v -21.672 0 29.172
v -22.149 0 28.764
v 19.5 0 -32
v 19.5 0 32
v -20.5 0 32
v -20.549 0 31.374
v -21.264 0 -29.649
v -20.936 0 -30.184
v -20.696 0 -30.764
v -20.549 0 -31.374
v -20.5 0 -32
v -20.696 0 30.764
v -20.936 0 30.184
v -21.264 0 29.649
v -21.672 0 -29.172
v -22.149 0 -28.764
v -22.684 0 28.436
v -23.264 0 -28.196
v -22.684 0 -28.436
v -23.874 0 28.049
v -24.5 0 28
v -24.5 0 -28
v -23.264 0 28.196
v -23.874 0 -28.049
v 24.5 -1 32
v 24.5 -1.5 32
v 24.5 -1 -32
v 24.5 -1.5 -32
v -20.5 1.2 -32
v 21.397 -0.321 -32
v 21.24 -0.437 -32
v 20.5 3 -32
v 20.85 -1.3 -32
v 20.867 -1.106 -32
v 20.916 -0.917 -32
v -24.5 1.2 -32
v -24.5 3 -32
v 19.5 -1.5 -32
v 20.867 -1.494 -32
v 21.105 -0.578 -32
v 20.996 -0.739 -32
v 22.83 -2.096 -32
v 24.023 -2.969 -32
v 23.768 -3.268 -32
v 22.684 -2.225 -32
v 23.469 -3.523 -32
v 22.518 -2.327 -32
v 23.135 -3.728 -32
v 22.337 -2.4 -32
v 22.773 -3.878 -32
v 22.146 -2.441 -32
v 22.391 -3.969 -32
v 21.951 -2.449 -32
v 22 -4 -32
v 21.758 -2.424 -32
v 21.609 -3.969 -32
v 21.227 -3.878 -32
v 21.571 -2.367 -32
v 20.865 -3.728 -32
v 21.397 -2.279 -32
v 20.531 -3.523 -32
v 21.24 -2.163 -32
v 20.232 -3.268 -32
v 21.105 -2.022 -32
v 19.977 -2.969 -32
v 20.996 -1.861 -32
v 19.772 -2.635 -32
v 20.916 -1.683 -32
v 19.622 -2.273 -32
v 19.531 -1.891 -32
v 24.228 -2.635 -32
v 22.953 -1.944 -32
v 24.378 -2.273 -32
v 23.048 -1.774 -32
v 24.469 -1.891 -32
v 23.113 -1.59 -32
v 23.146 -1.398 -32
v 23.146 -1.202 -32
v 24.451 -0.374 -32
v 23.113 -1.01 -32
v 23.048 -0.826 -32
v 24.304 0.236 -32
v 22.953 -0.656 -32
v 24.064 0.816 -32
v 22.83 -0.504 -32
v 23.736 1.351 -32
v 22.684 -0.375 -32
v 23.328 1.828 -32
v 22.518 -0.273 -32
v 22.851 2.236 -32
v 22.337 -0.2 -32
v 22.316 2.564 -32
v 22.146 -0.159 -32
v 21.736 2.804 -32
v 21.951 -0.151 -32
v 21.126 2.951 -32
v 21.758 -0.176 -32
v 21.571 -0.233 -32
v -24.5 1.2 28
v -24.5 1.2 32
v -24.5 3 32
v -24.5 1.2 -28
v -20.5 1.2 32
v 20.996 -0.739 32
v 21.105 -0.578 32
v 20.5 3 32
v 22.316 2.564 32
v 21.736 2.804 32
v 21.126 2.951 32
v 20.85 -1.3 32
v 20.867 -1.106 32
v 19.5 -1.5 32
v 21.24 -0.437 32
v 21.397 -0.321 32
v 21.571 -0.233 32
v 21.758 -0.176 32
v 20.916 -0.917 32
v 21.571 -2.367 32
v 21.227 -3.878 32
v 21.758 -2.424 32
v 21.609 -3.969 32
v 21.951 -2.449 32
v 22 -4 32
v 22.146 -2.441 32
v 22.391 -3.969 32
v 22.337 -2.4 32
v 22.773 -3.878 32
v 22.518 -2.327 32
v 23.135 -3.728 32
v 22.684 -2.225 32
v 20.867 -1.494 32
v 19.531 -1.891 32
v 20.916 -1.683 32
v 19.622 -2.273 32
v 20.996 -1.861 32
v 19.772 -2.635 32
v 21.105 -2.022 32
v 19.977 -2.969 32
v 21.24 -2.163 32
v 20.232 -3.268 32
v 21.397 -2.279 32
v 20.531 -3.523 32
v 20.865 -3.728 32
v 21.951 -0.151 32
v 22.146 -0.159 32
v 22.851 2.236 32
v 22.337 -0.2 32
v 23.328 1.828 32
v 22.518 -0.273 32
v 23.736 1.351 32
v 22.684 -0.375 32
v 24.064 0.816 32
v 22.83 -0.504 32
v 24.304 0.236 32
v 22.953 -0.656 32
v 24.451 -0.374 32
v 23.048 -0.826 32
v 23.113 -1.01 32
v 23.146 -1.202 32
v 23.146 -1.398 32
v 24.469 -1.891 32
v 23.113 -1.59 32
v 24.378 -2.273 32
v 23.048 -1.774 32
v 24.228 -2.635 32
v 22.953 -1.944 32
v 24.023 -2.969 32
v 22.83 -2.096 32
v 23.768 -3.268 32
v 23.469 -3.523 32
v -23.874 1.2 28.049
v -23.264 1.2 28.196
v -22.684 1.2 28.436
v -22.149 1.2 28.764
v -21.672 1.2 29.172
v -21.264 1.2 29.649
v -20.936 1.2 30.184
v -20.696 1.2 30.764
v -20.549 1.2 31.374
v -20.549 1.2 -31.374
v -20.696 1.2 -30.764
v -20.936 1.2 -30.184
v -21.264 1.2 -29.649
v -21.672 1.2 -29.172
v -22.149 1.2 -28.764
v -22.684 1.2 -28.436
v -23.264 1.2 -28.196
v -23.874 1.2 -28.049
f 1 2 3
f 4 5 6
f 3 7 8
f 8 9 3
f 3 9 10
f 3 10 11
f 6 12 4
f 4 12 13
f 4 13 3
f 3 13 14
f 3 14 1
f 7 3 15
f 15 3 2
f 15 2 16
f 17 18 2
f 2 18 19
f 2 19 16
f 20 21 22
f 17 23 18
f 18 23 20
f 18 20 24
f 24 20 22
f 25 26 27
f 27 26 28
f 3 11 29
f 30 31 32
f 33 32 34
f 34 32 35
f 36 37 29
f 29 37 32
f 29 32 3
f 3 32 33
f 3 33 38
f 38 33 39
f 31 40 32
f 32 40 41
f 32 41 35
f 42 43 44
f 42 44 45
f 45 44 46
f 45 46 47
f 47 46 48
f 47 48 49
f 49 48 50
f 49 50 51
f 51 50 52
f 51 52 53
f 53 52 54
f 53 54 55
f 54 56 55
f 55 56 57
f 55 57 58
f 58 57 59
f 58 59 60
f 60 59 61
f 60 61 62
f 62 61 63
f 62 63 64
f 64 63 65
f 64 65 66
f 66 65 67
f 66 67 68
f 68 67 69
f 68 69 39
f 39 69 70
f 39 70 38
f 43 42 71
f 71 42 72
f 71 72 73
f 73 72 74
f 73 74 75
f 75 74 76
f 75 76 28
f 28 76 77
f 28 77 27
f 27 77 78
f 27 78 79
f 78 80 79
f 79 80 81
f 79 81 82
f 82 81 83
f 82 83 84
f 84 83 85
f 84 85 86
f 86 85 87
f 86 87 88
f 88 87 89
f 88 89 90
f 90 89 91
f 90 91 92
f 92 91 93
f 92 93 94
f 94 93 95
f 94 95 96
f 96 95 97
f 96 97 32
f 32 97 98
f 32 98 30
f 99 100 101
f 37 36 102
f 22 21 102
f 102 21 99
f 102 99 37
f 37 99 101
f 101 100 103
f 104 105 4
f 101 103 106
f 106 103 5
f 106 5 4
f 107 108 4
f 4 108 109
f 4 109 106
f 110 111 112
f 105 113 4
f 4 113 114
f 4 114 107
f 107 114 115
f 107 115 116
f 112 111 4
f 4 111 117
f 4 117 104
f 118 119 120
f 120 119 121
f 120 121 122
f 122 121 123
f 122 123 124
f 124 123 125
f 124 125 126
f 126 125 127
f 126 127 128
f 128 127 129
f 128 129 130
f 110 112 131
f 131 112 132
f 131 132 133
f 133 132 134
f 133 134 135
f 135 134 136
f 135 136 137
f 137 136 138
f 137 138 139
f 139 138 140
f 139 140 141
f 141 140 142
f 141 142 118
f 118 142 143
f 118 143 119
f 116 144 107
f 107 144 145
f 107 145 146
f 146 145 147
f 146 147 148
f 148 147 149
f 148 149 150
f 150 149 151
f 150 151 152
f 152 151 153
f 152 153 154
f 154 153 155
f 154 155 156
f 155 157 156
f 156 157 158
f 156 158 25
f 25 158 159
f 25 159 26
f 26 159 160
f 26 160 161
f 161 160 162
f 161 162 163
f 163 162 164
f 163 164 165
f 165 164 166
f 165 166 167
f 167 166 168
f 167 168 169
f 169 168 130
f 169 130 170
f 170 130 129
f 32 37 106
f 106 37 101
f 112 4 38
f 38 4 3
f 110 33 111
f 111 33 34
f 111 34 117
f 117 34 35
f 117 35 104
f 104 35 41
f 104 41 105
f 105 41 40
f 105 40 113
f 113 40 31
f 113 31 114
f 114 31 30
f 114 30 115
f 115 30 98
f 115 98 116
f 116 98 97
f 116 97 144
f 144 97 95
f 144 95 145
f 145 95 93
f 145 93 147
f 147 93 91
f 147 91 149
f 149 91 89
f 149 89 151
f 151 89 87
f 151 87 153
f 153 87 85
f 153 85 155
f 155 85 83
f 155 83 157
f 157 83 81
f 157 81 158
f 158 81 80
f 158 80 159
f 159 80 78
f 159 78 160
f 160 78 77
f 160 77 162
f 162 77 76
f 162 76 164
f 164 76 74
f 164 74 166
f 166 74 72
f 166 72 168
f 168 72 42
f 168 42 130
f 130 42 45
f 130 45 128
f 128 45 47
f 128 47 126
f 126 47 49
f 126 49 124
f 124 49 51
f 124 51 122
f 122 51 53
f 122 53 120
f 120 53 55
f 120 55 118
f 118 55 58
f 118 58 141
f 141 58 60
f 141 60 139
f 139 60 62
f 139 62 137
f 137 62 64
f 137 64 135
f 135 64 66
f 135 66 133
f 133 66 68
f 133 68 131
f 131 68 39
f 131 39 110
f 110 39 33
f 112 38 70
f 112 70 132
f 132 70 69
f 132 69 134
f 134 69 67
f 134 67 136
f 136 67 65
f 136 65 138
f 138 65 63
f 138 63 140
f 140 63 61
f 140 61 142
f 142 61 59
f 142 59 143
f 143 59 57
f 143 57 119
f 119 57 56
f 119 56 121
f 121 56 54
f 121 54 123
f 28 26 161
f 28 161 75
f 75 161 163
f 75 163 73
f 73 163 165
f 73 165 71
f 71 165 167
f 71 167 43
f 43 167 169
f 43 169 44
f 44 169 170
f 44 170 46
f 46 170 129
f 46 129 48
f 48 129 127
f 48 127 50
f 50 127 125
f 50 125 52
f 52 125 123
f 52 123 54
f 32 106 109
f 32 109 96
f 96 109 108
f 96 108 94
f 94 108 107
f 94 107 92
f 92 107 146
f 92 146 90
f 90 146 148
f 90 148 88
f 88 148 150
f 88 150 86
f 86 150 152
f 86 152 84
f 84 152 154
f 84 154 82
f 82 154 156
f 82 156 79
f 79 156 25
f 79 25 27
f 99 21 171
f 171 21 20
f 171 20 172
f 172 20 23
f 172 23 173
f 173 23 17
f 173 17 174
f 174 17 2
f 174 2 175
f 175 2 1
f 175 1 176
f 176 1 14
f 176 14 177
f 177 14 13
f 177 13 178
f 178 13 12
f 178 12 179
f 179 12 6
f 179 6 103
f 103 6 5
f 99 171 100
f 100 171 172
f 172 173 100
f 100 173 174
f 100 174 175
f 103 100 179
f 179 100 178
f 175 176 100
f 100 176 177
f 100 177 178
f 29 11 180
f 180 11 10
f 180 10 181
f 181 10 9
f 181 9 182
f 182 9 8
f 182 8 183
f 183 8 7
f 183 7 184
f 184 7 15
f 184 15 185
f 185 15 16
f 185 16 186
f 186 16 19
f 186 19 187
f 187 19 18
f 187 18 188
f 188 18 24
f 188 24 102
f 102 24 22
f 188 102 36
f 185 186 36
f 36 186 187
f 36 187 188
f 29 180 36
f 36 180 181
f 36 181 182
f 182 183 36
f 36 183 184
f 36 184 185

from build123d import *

# Parameters (mm, degrees)
SKETCH_1_W          = 49
SKETCH_1_H          = 64
EXTRUDE_1_DEPTH     = 3
SKETCH_2_W          = 5
SKETCH_2_H          = 64
EXTRUDE_2_DEPTH     = 4
SKETCH_3_R          = 1.15
CUT_EXTRUDE_2_DEPTH = 69.645830172
FILLET_1_R          = 2.5
FILLET_2_R          = 4
CUT_EXTRUDE_3_DEPTH = 1.2


with BuildPart() as part:
    # 草图1 → 凸台-拉伸1 (new body)
    with BuildSketch(Plane(origin=(0, 0, 0), x_dir=(1, 0, 0), z_dir=(0, 1, 0))):
        Rectangle(SKETCH_1_W, SKETCH_1_H)
    extrude(amount=EXTRUDE_1_DEPTH)

    # 草图2 → 凸台-拉伸2 (add)
    with BuildSketch(Plane(origin=(0, 0, 0), x_dir=(-1, 0, 0), z_dir=(0, -1, 0))):
        with Locations((-22, 0)):
            Rectangle(SKETCH_2_W, SKETCH_2_H)
    extrude(amount=EXTRUDE_2_DEPTH)

    # 草图3 → 切除-拉伸2 (cut, through all)
    with BuildSketch(Plane(origin=(0, 0, -32), x_dir=(-1, 0, 0), z_dir=(0, 0, -1))):
        with Locations((-22, -1.3)):
            Circle(SKETCH_3_R)
    extrude(amount=-CUT_EXTRUDE_2_DEPTH, mode=Mode.SUBTRACT)

    # 圆角1
    fillet_1_edges = [part.edges().sort_by_distance(p)[0] for p in [
        (24.5, -4, 0),
        (19.5, -4, 0),
    ]]
    fillet(fillet_1_edges, radius=FILLET_1_R - 0.0001)  # a hair under: the kernel refuses the full size

    # 圆角2
    fillet_2_edges = [part.edges().sort_by_distance(p)[0] for p in [
        (24.5, 3, 0),
    ]]
    fillet(fillet_2_edges, radius=FILLET_2_R)

    # 草图4 → 切除-拉伸3 (cut)
    with BuildSketch(Plane(origin=(0, 0, 0), x_dir=(-1, 0, 0), z_dir=(0, -1, 0))):
        with BuildLine():
            Line((24.5, -28), (24.5, -32))
            Line((24.5, -32), (20.5, -32))
            ThreePointArc((20.5, -32), (21.671572875, -29.171572875), (24.5, -28))
        make_face()
        with BuildLine():
            Line((24.5, 28), (24.5, 32))
            Line((24.5, 32), (20.5, 32))
            ThreePointArc((20.5, 32), (21.671572875, 29.171572875), (24.5, 28))
        make_face()
    extrude(amount=-CUT_EXTRUDE_3_DEPTH, mode=Mode.SUBTRACT)


solid = part.part
